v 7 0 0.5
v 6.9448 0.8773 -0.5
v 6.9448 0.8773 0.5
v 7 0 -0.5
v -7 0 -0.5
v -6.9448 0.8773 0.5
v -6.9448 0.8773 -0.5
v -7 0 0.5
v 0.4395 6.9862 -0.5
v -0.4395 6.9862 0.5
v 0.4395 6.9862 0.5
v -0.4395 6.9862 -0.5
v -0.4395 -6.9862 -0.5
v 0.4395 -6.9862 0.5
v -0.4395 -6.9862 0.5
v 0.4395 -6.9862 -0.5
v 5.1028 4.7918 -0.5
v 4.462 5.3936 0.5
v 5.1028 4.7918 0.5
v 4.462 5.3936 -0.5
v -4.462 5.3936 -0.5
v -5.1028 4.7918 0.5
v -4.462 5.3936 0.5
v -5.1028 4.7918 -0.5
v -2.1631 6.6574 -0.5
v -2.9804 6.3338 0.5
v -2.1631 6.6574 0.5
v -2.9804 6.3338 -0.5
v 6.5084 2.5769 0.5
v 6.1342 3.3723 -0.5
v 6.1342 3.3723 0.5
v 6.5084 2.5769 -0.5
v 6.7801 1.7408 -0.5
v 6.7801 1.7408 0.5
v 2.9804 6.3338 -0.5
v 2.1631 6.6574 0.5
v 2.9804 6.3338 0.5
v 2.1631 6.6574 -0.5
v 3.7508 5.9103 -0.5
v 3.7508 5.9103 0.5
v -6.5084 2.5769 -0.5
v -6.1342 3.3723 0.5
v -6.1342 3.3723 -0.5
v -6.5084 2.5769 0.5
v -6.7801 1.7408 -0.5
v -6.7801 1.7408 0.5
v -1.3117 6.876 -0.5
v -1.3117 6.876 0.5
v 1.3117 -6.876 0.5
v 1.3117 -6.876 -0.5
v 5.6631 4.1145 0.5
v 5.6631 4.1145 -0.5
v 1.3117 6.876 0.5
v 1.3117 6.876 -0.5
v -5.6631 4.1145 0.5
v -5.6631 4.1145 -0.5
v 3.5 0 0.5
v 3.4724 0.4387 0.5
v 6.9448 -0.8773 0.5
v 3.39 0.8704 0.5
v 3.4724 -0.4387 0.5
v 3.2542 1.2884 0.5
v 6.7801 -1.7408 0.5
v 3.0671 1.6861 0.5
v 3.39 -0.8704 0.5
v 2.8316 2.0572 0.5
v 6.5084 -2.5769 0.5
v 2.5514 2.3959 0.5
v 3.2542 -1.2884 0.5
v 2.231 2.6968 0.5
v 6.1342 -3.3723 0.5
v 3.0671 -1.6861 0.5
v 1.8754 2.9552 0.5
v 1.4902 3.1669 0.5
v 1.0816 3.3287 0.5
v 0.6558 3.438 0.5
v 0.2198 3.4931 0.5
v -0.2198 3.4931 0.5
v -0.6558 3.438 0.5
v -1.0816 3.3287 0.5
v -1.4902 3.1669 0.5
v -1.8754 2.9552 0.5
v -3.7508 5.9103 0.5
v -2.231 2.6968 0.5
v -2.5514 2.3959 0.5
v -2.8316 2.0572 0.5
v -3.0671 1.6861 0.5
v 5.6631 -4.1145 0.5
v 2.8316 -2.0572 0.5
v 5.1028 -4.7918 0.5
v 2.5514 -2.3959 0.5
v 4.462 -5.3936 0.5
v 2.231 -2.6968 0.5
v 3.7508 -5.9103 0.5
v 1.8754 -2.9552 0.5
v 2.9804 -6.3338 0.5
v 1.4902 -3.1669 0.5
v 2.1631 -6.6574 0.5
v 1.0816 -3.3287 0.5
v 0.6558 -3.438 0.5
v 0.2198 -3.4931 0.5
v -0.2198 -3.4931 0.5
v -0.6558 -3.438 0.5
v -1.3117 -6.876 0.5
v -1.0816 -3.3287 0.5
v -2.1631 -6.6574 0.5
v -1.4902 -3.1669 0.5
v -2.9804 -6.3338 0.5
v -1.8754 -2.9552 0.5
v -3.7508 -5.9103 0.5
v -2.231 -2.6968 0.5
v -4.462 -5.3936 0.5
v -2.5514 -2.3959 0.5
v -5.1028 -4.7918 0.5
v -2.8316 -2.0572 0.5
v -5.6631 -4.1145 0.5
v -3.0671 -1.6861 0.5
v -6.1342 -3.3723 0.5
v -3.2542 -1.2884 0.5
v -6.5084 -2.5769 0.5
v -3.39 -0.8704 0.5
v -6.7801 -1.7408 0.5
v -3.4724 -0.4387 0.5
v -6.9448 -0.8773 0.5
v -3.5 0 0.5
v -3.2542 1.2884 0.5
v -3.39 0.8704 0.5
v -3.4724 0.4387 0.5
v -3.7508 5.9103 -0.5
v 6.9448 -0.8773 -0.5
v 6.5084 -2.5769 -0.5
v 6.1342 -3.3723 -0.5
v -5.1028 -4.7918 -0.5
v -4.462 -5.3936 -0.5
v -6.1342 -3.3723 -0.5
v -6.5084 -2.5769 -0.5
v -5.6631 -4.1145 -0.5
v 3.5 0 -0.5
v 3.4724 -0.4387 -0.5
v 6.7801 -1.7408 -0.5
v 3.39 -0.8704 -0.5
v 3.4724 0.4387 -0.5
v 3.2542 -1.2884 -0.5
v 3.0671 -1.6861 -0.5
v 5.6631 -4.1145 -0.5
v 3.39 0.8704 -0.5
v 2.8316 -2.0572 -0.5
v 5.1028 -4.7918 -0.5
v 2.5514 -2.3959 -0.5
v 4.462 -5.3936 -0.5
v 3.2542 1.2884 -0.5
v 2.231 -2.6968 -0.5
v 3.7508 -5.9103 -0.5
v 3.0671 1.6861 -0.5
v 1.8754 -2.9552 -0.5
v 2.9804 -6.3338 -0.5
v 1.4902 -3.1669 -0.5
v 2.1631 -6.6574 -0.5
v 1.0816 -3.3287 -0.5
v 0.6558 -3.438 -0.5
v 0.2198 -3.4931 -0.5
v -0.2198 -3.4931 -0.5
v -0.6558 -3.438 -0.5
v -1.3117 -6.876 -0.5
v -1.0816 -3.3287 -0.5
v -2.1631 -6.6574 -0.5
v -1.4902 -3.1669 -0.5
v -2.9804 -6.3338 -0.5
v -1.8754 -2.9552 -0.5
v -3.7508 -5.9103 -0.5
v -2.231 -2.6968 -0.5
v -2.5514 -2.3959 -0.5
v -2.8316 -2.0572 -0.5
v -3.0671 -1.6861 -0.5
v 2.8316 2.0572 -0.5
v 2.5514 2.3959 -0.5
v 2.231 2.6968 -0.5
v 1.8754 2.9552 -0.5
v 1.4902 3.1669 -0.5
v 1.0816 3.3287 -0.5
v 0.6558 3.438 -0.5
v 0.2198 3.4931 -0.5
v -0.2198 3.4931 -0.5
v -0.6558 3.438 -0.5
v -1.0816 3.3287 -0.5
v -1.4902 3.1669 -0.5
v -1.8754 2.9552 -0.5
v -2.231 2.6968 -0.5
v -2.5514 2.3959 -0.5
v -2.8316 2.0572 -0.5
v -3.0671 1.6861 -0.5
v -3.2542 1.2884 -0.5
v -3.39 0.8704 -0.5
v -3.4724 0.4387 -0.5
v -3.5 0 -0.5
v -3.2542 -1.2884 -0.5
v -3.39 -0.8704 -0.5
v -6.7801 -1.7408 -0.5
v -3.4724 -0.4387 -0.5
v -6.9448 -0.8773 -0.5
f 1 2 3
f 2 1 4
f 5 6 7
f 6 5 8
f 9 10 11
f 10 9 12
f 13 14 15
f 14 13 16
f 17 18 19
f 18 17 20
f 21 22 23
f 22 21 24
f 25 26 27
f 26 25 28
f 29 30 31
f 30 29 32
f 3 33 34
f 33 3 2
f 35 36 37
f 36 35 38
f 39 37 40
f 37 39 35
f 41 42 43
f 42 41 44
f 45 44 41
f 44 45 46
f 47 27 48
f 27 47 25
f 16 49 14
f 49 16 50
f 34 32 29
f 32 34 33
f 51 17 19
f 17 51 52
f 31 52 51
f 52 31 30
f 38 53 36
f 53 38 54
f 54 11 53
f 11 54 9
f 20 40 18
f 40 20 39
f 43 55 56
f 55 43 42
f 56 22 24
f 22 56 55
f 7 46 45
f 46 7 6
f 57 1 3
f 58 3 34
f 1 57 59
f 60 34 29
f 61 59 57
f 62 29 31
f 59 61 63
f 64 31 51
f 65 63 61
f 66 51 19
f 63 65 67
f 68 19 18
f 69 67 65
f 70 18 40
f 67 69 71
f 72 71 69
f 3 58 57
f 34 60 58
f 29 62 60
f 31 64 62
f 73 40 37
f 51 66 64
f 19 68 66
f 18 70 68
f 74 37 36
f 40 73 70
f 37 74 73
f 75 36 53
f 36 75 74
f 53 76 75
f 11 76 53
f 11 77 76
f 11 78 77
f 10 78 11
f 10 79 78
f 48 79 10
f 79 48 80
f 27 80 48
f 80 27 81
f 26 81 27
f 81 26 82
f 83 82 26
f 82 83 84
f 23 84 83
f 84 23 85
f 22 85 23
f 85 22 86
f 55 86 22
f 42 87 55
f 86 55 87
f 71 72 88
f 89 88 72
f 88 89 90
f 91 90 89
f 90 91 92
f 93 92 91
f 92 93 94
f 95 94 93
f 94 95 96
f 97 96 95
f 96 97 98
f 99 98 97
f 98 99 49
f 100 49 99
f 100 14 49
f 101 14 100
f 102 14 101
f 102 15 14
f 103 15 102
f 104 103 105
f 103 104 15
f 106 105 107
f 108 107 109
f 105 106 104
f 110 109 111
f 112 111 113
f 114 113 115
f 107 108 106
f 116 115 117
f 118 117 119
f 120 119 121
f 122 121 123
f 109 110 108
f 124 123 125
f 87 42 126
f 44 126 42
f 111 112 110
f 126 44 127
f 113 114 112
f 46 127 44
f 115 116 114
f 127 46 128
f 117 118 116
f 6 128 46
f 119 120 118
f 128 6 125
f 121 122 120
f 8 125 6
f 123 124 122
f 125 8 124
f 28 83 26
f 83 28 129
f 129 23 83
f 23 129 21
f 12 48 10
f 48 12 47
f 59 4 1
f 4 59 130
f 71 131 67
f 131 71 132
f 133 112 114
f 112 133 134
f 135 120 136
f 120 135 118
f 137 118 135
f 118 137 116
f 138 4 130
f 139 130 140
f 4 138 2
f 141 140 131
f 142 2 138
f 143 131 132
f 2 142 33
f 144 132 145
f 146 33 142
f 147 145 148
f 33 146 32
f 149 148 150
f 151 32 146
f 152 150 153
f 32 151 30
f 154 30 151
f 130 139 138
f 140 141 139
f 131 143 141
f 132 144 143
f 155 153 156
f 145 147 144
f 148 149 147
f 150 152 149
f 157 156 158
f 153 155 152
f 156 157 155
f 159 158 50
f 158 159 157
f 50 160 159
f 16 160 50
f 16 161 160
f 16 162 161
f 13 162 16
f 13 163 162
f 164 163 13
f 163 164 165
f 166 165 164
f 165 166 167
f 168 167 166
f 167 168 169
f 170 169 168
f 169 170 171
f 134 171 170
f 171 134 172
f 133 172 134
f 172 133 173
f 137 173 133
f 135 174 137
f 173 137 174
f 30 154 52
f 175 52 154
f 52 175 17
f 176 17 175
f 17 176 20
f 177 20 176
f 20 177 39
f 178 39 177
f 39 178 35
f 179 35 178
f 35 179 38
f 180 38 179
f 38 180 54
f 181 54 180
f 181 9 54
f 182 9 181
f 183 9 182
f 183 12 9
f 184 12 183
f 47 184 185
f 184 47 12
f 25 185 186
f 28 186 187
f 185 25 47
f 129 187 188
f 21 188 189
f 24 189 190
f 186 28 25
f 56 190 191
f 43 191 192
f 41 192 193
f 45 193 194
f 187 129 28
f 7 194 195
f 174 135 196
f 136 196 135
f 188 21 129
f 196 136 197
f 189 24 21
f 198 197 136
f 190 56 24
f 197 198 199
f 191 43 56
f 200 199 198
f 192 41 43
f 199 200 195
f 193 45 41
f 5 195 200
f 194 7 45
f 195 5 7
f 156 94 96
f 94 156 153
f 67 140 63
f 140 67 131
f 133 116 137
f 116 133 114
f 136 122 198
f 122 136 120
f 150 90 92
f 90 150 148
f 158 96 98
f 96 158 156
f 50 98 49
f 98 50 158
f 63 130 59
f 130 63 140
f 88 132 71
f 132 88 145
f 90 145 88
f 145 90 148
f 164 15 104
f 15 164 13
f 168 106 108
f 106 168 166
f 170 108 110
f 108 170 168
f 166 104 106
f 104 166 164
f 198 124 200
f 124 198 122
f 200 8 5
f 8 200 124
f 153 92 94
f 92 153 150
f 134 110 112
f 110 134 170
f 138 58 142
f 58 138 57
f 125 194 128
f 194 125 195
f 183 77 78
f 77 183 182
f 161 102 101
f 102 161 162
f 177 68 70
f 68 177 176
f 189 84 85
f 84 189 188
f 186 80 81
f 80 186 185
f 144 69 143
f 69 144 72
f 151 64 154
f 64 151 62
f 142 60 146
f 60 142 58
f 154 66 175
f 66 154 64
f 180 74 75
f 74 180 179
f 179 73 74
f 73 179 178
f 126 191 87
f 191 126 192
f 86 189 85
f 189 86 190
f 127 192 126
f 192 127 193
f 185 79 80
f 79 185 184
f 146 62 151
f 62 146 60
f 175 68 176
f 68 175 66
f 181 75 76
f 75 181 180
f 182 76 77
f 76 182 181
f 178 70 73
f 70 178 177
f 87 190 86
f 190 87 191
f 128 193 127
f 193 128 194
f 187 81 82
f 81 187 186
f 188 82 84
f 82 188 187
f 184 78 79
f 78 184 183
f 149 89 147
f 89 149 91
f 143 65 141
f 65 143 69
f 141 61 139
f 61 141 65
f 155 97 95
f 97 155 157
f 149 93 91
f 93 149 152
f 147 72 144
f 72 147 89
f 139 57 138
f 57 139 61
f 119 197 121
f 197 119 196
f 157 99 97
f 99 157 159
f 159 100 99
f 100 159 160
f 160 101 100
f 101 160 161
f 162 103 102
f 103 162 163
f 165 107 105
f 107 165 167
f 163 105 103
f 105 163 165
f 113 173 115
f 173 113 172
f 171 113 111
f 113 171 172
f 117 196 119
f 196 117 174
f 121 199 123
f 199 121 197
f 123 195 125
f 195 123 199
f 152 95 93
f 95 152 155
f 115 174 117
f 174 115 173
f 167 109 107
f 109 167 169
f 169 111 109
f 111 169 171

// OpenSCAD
$fn = 50;


difference() {
	union() {
		translate(v = [0, 0, -0.5000000000]) {
			cylinder(h = 1, r = 7.0000000000);
		}
	}
	union() {
		translate(v = [0, 0, -100.0000000000]) {
			cylinder(h = 200, r = 3.5000000000);
		}
	}
}
